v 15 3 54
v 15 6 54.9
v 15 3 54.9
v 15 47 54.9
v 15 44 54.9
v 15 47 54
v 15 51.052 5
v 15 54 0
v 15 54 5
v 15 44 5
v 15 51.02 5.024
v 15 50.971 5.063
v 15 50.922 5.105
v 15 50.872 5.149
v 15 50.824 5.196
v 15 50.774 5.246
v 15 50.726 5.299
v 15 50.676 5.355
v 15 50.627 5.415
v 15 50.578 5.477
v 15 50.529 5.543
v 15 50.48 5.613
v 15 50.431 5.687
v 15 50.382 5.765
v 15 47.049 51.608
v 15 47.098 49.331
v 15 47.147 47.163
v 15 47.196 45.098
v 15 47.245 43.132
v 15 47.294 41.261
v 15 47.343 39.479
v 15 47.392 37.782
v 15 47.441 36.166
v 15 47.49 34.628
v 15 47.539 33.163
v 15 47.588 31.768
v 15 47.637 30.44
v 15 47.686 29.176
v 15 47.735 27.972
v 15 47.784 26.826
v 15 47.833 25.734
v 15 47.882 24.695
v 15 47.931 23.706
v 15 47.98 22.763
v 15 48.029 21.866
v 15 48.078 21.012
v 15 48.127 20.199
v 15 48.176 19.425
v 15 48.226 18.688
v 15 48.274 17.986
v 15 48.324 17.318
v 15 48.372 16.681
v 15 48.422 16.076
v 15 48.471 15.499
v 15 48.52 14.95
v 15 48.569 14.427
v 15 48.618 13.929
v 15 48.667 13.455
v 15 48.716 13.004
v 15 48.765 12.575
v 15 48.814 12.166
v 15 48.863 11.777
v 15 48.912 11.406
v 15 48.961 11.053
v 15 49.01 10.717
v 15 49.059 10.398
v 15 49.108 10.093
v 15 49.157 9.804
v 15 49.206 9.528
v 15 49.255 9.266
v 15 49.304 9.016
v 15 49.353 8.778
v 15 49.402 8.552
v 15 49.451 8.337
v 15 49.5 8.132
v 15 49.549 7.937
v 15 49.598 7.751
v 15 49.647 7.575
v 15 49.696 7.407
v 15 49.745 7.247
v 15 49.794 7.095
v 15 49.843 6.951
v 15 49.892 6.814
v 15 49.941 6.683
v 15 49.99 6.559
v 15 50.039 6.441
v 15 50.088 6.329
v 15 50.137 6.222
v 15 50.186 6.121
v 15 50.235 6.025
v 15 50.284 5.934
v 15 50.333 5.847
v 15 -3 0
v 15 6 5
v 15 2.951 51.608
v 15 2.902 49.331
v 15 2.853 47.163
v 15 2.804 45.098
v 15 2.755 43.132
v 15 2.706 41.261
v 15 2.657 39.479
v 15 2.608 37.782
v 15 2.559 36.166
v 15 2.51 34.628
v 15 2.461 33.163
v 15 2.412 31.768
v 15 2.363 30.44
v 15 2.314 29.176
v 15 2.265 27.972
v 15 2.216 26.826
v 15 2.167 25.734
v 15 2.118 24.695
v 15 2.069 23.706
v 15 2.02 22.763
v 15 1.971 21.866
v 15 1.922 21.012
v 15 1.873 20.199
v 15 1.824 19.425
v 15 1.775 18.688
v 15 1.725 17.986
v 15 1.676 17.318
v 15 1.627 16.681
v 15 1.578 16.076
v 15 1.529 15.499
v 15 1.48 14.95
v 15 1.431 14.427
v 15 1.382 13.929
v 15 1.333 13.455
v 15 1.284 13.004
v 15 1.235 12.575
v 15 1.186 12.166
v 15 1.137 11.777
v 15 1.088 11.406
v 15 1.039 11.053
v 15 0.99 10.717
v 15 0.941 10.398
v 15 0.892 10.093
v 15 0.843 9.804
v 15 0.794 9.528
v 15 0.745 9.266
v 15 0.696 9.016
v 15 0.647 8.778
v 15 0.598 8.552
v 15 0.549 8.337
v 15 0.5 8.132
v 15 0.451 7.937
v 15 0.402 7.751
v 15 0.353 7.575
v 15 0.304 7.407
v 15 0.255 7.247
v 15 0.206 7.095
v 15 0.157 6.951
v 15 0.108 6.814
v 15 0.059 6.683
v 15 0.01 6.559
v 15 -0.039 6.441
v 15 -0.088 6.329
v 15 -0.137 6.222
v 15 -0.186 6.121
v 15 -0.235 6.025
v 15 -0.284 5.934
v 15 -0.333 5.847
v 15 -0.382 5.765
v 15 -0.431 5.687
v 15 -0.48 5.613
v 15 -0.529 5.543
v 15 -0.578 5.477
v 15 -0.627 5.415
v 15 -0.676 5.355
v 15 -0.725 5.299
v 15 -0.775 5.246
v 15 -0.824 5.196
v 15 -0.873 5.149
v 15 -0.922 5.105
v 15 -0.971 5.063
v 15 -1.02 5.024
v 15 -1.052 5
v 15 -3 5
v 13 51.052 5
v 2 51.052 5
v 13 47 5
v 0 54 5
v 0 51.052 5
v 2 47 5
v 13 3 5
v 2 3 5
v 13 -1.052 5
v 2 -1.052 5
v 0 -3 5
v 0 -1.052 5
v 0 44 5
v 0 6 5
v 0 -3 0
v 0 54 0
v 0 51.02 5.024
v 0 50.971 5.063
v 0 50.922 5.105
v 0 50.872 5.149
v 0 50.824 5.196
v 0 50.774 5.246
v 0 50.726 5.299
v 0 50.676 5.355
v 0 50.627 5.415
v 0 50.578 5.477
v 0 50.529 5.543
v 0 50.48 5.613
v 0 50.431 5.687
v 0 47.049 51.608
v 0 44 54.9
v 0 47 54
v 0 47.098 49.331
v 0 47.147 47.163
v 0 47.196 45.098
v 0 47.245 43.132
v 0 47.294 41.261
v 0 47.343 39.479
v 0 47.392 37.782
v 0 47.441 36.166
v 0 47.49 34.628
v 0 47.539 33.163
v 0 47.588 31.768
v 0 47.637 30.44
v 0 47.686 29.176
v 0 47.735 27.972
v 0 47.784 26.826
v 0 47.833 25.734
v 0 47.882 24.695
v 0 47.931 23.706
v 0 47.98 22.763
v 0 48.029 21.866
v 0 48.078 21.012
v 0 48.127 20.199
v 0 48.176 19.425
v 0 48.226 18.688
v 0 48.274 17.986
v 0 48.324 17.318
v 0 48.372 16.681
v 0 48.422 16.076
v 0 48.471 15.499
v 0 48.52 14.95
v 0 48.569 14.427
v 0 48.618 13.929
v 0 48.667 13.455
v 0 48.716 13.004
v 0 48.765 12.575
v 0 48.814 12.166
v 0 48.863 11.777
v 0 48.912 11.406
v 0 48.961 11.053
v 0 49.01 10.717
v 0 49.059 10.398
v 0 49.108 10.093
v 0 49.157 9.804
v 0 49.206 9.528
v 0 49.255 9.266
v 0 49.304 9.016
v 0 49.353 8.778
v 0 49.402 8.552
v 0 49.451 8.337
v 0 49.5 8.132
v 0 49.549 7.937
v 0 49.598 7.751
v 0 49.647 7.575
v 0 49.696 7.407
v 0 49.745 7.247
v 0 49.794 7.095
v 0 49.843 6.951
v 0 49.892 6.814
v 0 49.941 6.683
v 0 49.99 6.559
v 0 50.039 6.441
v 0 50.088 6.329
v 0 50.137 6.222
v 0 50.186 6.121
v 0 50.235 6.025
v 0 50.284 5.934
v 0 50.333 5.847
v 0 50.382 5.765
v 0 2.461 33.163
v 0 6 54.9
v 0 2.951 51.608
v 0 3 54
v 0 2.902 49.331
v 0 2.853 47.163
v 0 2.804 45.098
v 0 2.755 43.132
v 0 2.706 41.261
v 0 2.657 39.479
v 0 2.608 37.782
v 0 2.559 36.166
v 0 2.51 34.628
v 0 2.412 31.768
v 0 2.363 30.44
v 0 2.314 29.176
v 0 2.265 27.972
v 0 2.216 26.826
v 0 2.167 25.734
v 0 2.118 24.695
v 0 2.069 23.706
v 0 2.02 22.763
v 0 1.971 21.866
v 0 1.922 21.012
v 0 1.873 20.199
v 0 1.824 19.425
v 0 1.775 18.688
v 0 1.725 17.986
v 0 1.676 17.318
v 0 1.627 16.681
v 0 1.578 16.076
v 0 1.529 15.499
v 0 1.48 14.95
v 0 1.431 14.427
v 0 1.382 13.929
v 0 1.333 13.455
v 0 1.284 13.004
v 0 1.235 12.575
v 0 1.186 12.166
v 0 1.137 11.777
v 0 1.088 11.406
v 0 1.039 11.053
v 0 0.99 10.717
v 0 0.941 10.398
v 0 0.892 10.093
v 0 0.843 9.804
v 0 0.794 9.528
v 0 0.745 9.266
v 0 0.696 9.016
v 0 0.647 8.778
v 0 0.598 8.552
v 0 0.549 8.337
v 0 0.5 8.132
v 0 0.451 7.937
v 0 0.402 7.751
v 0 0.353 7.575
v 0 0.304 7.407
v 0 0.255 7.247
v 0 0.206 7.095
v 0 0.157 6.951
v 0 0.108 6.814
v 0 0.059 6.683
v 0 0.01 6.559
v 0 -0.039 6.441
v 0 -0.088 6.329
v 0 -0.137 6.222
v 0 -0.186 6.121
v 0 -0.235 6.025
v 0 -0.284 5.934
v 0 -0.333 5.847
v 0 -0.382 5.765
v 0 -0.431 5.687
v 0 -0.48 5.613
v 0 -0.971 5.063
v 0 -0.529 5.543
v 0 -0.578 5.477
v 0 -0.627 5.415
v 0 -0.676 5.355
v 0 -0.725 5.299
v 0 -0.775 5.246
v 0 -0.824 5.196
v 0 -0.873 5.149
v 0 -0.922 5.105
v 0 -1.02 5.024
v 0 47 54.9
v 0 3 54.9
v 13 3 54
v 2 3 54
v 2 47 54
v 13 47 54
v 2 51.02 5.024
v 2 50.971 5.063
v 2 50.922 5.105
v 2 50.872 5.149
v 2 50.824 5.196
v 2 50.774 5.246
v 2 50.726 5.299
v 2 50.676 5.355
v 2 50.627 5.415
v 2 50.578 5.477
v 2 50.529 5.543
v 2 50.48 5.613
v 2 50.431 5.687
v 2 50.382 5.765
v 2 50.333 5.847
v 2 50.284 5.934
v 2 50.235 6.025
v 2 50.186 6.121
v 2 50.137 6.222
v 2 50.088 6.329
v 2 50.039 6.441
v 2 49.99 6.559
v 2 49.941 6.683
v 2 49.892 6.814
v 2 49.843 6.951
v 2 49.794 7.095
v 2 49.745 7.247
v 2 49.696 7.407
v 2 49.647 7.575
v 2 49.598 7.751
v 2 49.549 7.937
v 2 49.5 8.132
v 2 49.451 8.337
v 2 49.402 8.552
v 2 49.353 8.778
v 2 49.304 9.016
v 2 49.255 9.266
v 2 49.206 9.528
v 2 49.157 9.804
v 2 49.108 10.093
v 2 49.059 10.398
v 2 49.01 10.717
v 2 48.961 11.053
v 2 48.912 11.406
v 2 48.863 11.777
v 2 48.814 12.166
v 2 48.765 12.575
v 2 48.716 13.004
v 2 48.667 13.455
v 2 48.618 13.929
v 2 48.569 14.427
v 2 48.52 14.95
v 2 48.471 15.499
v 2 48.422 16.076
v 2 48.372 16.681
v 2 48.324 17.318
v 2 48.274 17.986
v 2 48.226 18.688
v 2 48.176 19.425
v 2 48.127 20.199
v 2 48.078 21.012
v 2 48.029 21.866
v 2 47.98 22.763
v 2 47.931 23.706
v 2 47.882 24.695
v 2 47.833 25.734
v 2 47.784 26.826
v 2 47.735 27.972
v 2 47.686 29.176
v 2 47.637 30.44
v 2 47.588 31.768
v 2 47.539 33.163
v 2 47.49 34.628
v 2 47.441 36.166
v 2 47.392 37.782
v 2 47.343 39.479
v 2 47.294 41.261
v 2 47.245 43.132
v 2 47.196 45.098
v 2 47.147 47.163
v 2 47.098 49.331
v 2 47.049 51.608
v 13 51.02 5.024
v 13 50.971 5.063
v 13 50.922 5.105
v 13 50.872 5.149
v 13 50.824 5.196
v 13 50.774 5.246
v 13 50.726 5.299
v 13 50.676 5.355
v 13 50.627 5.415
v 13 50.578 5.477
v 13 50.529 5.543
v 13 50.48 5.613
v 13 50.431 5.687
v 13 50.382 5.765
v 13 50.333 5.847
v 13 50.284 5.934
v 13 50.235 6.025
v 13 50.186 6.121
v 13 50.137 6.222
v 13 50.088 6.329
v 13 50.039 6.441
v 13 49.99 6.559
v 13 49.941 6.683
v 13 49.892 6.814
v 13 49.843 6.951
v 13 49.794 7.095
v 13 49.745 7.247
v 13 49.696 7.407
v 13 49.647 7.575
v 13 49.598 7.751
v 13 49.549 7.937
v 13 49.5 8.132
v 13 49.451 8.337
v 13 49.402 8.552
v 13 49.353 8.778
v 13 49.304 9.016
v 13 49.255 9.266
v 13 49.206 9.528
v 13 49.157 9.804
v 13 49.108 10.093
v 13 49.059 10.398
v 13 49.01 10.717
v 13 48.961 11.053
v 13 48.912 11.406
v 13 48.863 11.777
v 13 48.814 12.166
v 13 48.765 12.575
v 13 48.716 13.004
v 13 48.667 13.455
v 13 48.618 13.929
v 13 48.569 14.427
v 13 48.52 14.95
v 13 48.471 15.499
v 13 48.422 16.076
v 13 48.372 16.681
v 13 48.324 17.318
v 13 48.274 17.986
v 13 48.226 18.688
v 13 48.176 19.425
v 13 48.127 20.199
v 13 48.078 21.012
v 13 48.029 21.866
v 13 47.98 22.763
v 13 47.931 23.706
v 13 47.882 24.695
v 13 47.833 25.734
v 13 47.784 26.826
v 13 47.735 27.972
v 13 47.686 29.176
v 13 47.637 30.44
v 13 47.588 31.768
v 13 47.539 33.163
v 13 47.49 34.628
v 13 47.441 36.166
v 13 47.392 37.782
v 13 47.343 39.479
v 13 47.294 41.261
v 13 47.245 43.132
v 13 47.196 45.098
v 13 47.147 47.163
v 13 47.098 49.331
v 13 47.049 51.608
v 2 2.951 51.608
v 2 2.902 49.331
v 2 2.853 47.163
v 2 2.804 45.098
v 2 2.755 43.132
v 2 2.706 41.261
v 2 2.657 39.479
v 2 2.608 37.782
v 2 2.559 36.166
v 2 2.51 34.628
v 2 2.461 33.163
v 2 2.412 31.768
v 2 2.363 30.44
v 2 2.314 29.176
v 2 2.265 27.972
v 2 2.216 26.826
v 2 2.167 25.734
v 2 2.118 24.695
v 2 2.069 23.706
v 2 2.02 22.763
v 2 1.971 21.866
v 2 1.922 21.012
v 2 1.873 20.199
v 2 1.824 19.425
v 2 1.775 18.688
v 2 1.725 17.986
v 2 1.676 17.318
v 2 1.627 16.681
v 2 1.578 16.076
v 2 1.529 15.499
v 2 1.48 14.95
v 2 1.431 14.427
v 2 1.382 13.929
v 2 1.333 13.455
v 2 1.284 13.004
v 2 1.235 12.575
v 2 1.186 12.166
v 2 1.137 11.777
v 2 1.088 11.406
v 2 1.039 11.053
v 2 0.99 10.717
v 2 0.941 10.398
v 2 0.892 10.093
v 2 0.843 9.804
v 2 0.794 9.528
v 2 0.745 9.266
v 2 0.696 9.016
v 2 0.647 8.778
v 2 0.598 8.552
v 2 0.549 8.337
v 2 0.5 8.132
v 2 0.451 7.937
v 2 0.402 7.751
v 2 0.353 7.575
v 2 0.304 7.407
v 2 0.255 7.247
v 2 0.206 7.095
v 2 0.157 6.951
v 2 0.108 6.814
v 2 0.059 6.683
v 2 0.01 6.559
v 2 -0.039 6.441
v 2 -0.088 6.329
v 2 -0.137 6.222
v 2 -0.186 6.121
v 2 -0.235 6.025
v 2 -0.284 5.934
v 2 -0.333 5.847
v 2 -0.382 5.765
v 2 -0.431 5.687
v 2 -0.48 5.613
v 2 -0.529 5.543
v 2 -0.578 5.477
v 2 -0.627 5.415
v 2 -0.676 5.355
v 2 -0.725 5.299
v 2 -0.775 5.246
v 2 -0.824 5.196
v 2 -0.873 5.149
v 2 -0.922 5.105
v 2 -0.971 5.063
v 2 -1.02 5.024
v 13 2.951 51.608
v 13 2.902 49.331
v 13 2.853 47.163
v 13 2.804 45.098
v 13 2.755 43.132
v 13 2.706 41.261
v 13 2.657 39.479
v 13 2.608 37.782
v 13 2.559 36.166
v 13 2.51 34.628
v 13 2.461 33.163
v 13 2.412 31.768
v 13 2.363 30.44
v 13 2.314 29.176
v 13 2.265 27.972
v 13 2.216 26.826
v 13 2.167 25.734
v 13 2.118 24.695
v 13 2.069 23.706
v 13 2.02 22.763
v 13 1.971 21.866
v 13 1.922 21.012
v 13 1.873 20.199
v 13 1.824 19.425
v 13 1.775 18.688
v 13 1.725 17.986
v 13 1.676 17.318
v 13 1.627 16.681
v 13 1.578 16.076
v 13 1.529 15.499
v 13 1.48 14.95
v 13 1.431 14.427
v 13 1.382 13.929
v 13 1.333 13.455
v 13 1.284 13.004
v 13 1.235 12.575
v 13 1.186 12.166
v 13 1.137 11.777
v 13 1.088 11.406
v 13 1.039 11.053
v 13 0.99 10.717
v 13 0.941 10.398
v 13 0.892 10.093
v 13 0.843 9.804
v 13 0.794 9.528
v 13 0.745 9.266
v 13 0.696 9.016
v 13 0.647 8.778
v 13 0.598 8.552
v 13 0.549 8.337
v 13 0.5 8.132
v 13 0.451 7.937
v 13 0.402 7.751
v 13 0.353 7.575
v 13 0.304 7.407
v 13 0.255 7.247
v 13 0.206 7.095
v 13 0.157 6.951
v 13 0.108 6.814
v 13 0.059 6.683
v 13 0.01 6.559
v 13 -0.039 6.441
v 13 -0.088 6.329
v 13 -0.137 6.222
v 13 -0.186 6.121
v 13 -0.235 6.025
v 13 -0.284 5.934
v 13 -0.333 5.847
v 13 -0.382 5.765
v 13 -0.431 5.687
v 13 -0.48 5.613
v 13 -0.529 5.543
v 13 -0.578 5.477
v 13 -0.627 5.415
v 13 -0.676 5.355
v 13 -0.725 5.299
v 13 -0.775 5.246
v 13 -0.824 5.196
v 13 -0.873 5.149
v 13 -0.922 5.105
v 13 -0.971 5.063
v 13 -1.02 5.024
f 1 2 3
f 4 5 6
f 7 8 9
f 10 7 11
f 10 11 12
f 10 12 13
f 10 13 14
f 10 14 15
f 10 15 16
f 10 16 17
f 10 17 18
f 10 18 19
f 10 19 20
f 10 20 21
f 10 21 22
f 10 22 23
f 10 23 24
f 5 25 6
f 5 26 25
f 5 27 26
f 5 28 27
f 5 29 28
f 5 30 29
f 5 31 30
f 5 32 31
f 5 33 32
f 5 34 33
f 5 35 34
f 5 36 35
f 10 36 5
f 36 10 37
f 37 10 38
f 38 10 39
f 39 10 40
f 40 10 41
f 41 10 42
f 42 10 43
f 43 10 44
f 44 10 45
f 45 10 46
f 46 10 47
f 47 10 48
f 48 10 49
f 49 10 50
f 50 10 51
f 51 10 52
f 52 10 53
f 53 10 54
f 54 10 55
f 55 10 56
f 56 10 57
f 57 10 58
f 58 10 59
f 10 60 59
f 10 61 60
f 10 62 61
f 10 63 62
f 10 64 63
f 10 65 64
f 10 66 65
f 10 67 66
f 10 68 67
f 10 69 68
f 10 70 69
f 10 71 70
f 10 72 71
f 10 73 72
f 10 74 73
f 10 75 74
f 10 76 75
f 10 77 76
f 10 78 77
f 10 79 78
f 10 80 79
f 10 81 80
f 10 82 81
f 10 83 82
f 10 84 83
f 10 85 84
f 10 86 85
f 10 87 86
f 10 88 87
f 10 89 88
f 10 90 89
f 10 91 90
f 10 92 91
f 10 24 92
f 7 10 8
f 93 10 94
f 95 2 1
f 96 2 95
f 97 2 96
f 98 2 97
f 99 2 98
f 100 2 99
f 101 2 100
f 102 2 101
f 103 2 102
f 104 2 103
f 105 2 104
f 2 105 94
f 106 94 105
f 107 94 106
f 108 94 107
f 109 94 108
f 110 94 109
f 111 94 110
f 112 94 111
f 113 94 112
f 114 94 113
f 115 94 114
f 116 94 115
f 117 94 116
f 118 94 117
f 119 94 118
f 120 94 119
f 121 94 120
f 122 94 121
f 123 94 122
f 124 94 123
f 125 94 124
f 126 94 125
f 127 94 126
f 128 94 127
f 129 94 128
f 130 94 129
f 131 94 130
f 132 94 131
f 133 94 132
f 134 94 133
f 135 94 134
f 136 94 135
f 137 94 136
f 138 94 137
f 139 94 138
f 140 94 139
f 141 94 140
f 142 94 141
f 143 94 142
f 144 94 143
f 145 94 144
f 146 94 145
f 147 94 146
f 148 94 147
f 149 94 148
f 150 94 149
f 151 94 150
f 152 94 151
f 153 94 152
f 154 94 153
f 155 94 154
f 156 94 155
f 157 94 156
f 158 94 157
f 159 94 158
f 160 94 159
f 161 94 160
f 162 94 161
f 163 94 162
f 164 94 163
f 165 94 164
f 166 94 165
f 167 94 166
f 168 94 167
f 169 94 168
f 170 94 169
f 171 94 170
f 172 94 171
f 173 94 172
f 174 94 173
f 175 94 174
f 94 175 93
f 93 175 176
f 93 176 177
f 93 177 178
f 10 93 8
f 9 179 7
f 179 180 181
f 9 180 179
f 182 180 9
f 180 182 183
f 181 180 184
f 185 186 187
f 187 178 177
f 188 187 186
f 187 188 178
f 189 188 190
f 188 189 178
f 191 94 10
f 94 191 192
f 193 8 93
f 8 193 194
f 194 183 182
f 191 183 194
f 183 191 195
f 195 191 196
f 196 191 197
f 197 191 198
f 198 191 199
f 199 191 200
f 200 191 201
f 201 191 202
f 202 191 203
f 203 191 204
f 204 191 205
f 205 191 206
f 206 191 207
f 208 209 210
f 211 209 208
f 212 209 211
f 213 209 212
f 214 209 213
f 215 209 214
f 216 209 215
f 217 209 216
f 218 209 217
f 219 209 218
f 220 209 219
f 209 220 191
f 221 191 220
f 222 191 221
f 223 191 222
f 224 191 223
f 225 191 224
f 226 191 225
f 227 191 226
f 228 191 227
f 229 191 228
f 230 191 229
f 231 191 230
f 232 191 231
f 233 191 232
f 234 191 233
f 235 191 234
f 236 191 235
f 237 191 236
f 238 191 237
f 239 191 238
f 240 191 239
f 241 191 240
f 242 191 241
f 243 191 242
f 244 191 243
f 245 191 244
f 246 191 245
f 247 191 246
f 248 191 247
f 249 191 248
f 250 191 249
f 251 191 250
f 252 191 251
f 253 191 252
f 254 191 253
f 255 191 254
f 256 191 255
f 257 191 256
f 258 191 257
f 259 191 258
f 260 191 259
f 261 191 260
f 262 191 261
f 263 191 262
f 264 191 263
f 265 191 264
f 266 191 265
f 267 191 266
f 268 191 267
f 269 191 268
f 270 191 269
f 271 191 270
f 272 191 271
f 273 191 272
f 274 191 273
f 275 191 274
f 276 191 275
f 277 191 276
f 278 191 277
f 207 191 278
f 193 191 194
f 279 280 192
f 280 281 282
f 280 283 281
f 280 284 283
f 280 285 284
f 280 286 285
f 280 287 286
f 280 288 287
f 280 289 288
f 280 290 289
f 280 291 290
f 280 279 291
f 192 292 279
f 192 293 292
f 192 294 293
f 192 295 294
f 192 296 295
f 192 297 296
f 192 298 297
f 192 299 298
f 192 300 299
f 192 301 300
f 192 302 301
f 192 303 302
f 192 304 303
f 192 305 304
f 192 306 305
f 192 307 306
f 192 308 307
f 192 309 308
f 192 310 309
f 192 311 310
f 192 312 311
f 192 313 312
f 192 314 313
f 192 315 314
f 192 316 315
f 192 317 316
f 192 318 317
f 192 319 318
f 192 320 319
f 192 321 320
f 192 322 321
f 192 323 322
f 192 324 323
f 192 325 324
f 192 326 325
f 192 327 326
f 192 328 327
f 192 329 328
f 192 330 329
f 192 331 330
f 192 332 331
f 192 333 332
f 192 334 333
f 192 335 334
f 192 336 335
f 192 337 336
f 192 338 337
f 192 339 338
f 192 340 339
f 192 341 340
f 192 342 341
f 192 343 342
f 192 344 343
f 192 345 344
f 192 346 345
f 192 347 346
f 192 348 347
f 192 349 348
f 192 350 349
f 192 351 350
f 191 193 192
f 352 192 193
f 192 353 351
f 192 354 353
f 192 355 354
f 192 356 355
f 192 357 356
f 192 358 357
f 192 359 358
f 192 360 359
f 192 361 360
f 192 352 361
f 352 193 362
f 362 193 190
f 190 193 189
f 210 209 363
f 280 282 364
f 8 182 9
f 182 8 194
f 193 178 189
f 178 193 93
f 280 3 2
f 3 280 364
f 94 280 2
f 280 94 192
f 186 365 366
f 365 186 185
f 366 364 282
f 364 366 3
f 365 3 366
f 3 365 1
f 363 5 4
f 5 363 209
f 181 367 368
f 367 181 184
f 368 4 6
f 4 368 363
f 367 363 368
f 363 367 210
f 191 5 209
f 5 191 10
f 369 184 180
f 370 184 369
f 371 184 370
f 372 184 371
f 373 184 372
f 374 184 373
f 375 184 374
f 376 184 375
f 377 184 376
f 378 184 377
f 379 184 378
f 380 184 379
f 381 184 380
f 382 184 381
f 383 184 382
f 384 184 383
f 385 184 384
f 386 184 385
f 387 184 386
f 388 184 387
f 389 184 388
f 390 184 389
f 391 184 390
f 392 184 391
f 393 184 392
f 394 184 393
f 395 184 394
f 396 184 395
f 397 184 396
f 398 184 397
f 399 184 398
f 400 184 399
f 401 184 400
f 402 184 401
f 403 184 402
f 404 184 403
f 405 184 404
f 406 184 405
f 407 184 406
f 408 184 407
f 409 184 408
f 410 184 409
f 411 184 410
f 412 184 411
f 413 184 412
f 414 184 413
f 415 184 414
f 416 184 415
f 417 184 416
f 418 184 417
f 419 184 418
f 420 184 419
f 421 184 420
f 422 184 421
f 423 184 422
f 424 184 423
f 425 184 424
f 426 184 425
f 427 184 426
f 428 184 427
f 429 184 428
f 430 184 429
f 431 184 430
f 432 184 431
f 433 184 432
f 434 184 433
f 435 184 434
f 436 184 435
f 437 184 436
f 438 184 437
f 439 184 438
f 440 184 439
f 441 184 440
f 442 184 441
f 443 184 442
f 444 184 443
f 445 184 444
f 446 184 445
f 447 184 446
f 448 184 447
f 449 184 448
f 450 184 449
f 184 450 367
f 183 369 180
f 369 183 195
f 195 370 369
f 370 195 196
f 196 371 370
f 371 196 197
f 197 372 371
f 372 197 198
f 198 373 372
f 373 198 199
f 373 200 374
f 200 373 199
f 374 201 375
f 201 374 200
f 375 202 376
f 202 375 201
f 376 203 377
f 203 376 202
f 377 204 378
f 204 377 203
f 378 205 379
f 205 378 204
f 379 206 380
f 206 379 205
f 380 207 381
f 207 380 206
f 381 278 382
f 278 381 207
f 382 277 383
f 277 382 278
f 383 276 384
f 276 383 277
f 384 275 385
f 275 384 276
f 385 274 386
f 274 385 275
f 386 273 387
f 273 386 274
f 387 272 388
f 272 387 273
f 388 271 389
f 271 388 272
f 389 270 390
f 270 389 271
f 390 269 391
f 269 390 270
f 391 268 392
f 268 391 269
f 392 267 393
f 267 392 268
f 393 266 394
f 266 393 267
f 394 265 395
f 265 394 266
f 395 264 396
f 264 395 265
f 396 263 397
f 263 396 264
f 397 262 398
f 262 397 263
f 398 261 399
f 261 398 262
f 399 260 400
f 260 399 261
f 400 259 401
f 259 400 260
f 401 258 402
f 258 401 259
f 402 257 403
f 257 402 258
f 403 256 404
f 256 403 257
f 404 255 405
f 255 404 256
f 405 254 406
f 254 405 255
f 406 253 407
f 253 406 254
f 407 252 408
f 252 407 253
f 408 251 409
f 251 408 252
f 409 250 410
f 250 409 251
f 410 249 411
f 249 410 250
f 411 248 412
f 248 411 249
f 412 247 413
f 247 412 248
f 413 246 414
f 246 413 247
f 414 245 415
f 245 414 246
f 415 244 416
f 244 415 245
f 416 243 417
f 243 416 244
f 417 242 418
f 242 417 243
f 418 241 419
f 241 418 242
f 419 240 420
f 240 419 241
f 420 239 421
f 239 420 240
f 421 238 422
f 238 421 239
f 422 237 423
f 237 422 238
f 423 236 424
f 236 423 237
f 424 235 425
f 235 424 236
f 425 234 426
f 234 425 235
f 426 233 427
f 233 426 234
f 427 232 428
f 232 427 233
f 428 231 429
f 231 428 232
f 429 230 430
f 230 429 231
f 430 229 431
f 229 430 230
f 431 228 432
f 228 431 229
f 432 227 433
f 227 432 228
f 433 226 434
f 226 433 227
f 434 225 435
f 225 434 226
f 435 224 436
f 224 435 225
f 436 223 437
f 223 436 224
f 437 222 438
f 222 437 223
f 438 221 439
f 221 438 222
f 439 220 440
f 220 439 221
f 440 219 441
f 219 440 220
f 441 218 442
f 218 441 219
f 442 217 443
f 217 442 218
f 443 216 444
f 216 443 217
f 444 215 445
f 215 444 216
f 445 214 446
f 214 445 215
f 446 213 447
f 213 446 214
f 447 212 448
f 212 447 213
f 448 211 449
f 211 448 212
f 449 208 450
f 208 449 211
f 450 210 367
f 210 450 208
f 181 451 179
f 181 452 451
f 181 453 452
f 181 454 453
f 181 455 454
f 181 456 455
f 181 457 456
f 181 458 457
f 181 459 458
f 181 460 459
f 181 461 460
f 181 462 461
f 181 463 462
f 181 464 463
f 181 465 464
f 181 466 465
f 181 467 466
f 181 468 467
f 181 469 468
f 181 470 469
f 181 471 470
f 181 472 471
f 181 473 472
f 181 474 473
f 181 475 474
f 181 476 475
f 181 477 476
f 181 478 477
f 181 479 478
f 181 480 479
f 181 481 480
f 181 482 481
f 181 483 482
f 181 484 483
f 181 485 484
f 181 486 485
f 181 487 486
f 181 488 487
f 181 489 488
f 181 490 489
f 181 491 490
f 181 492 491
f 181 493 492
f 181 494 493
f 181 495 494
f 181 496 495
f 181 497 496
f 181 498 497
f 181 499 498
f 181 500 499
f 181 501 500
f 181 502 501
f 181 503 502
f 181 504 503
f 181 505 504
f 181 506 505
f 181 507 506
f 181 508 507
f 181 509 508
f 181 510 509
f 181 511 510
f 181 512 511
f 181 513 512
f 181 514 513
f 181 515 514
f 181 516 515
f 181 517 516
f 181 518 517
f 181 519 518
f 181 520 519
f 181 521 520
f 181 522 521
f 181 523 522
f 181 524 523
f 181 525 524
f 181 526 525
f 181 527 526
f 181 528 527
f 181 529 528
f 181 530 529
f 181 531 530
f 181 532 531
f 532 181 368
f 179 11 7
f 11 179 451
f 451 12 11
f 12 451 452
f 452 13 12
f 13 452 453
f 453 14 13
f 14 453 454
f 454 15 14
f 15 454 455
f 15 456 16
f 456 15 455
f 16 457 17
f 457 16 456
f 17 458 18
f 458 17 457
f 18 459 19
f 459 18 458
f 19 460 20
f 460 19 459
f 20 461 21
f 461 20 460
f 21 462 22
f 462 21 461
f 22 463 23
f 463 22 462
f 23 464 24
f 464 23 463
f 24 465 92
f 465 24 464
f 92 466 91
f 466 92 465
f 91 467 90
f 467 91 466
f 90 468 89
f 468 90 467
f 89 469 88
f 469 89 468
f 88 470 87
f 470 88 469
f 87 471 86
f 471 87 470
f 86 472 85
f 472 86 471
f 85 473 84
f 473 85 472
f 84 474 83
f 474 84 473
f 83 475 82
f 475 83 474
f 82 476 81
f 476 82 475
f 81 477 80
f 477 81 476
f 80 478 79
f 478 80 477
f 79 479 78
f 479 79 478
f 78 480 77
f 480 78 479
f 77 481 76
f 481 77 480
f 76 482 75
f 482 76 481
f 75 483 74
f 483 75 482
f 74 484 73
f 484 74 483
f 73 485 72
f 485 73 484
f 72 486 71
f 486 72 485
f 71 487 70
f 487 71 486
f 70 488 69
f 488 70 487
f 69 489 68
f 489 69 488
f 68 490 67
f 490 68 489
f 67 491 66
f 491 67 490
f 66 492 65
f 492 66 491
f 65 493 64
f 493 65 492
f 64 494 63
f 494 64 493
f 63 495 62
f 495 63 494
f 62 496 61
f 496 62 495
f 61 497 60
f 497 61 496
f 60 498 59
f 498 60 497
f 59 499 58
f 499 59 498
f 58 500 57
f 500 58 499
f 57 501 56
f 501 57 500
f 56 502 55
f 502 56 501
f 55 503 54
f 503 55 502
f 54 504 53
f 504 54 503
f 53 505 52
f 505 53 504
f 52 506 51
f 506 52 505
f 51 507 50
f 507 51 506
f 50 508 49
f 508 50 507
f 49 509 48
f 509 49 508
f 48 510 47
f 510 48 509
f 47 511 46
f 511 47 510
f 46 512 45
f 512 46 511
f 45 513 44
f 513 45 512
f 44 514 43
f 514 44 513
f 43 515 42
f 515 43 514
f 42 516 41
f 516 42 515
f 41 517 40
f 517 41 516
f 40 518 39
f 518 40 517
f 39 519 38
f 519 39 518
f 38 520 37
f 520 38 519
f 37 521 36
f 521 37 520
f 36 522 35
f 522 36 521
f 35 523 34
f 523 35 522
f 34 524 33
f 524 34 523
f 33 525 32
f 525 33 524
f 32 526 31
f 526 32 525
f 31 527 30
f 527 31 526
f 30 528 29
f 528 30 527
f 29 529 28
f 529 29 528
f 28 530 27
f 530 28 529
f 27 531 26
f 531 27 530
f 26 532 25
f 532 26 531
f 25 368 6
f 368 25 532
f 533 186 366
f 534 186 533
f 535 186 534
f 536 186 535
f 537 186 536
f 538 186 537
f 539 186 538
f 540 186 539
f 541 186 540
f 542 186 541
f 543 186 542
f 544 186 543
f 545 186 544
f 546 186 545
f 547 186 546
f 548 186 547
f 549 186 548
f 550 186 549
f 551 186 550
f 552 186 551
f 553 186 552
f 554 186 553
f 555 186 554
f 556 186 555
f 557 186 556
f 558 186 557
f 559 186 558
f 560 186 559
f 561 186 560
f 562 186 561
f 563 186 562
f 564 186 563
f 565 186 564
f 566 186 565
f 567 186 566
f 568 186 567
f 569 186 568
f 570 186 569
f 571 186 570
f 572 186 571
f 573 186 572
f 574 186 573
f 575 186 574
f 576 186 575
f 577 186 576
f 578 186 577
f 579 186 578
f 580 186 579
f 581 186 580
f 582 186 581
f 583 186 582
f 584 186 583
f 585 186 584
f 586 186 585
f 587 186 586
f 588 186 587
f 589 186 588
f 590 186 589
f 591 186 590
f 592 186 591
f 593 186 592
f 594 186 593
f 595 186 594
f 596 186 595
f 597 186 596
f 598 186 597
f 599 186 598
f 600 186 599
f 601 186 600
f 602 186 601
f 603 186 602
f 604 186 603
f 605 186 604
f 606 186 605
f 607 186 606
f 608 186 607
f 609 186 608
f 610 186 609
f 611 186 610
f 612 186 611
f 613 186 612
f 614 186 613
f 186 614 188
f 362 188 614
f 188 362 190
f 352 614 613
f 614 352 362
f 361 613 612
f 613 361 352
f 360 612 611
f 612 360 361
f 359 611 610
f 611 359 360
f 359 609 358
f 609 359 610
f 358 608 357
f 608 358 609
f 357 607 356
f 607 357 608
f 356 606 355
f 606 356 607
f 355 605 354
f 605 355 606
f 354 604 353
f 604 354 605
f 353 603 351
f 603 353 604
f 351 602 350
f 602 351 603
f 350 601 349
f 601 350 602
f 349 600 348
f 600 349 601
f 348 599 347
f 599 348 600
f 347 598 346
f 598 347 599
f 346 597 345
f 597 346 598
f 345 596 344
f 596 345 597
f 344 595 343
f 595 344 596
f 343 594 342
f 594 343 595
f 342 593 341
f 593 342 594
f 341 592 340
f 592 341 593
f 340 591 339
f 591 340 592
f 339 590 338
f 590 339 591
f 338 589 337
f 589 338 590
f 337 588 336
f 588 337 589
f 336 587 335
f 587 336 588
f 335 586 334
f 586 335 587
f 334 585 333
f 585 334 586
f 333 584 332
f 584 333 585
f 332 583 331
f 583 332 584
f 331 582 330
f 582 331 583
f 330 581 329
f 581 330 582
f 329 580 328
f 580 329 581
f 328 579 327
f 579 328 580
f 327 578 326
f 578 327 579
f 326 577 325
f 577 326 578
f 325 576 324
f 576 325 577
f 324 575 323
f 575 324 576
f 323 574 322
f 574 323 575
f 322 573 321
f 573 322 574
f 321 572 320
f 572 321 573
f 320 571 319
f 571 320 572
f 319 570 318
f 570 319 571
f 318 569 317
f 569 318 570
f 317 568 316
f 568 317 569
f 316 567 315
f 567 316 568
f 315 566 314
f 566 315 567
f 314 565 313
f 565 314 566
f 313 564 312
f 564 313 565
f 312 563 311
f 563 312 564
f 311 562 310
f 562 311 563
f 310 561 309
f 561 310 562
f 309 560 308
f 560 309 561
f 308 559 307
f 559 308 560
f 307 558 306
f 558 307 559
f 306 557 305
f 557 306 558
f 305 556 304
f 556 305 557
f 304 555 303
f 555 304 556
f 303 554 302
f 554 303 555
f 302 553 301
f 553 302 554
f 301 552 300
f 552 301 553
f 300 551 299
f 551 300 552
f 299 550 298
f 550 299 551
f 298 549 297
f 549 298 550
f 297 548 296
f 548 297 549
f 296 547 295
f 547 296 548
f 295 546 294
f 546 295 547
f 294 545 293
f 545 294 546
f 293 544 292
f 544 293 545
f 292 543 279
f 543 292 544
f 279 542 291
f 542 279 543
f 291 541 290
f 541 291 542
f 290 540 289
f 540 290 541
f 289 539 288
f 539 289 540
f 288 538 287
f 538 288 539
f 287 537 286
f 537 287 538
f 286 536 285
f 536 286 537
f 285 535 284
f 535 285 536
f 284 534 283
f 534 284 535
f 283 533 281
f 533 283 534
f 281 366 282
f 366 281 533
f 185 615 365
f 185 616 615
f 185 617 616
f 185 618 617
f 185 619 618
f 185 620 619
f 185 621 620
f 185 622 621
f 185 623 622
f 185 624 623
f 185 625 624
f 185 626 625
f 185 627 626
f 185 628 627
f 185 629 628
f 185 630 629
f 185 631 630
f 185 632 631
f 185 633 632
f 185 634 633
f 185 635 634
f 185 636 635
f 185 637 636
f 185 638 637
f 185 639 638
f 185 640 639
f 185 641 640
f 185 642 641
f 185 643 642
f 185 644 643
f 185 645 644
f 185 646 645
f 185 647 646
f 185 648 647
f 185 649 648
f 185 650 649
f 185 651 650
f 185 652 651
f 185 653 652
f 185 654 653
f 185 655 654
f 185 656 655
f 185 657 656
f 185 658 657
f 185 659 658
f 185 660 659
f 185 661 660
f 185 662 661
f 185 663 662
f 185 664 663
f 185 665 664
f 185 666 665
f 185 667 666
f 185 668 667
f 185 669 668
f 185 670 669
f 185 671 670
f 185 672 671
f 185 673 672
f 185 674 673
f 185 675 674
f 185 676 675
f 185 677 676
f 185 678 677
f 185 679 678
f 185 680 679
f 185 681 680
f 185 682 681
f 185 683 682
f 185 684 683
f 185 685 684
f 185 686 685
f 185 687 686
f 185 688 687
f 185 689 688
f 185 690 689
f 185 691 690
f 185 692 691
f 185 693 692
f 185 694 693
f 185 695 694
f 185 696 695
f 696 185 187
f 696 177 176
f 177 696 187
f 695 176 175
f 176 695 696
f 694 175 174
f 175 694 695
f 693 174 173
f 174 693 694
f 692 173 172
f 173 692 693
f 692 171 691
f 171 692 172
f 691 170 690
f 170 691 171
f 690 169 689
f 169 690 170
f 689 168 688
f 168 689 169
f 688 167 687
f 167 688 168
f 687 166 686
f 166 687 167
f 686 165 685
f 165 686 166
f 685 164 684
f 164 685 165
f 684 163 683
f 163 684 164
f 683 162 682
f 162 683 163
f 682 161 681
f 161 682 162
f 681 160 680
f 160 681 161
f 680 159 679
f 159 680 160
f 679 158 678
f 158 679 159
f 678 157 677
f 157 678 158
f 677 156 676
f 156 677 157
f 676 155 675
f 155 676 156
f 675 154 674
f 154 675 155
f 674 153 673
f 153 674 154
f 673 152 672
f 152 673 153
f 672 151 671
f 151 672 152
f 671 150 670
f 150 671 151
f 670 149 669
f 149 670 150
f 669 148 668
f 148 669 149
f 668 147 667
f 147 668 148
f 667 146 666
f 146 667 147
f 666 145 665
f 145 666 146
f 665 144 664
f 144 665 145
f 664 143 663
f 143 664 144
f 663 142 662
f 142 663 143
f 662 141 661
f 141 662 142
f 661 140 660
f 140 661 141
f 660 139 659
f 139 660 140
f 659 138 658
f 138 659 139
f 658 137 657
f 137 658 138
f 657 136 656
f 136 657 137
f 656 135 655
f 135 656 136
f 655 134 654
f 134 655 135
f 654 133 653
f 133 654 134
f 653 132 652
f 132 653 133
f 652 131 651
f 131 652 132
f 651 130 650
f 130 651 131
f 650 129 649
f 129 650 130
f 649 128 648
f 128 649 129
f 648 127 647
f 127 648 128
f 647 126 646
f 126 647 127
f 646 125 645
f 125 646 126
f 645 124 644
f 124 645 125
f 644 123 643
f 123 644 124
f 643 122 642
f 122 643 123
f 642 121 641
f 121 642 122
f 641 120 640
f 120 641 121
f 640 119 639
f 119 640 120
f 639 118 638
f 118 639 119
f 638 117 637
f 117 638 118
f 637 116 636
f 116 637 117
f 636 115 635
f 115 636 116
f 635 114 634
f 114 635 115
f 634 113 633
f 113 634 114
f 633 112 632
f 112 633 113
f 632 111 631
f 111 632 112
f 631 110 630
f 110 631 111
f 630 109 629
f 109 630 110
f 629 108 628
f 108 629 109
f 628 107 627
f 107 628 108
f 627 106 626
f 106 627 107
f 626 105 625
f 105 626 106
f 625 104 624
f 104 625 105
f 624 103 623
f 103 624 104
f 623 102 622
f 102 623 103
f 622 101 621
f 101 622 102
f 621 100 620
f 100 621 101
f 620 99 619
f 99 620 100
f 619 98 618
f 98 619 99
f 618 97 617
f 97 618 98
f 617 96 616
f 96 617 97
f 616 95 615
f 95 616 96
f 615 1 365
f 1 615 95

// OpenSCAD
function cosh(x) = 0.5*(exp(x)+exp(-x));
module strebe(x,y,z,b=0.6){
    dx=(x)/$fn;
    ym=cosh(x*b);
    dy=y/ym;
    //echo($fn); 
    p=[for (j=[0:$fn])[x-j*dx,dy*cosh(j*dx*b)]];
    pp=concat(p,[[0,0]]);
        
        
   // echo(pp);
    linear_extrude(height=z,slices =$fn)
    polygon(pp);
}


translate([0,-3,0])cube([15,57,5]);
translate([0,3,4.9])cube([15,3,50]);
translate([0,6+38,4.9])cube([15,3,50]);
%translate([0,6,4.9])cube([15,38,50]);
//color("red")
translate([0,9+38,4])rotate(90,[0,0,1])rotate(90,[1,0,0])strebe($fn=102,5,50,2,b=1);
translate([13,9+38,4])rotate(90,[0,0,1])rotate(90,[1,0,0])strebe($fn=102,5,50,2,b=1);
translate([2,3,4])rotate(-90,[0,0,1])rotate(90,[1,0,0])strebe($fn=102,5,50,2,b=1);

translate([15,3,4])rotate(-90,[0,0,1])rotate(90,[1,0,0])strebe($fn=102,5,50,2,b=1);
